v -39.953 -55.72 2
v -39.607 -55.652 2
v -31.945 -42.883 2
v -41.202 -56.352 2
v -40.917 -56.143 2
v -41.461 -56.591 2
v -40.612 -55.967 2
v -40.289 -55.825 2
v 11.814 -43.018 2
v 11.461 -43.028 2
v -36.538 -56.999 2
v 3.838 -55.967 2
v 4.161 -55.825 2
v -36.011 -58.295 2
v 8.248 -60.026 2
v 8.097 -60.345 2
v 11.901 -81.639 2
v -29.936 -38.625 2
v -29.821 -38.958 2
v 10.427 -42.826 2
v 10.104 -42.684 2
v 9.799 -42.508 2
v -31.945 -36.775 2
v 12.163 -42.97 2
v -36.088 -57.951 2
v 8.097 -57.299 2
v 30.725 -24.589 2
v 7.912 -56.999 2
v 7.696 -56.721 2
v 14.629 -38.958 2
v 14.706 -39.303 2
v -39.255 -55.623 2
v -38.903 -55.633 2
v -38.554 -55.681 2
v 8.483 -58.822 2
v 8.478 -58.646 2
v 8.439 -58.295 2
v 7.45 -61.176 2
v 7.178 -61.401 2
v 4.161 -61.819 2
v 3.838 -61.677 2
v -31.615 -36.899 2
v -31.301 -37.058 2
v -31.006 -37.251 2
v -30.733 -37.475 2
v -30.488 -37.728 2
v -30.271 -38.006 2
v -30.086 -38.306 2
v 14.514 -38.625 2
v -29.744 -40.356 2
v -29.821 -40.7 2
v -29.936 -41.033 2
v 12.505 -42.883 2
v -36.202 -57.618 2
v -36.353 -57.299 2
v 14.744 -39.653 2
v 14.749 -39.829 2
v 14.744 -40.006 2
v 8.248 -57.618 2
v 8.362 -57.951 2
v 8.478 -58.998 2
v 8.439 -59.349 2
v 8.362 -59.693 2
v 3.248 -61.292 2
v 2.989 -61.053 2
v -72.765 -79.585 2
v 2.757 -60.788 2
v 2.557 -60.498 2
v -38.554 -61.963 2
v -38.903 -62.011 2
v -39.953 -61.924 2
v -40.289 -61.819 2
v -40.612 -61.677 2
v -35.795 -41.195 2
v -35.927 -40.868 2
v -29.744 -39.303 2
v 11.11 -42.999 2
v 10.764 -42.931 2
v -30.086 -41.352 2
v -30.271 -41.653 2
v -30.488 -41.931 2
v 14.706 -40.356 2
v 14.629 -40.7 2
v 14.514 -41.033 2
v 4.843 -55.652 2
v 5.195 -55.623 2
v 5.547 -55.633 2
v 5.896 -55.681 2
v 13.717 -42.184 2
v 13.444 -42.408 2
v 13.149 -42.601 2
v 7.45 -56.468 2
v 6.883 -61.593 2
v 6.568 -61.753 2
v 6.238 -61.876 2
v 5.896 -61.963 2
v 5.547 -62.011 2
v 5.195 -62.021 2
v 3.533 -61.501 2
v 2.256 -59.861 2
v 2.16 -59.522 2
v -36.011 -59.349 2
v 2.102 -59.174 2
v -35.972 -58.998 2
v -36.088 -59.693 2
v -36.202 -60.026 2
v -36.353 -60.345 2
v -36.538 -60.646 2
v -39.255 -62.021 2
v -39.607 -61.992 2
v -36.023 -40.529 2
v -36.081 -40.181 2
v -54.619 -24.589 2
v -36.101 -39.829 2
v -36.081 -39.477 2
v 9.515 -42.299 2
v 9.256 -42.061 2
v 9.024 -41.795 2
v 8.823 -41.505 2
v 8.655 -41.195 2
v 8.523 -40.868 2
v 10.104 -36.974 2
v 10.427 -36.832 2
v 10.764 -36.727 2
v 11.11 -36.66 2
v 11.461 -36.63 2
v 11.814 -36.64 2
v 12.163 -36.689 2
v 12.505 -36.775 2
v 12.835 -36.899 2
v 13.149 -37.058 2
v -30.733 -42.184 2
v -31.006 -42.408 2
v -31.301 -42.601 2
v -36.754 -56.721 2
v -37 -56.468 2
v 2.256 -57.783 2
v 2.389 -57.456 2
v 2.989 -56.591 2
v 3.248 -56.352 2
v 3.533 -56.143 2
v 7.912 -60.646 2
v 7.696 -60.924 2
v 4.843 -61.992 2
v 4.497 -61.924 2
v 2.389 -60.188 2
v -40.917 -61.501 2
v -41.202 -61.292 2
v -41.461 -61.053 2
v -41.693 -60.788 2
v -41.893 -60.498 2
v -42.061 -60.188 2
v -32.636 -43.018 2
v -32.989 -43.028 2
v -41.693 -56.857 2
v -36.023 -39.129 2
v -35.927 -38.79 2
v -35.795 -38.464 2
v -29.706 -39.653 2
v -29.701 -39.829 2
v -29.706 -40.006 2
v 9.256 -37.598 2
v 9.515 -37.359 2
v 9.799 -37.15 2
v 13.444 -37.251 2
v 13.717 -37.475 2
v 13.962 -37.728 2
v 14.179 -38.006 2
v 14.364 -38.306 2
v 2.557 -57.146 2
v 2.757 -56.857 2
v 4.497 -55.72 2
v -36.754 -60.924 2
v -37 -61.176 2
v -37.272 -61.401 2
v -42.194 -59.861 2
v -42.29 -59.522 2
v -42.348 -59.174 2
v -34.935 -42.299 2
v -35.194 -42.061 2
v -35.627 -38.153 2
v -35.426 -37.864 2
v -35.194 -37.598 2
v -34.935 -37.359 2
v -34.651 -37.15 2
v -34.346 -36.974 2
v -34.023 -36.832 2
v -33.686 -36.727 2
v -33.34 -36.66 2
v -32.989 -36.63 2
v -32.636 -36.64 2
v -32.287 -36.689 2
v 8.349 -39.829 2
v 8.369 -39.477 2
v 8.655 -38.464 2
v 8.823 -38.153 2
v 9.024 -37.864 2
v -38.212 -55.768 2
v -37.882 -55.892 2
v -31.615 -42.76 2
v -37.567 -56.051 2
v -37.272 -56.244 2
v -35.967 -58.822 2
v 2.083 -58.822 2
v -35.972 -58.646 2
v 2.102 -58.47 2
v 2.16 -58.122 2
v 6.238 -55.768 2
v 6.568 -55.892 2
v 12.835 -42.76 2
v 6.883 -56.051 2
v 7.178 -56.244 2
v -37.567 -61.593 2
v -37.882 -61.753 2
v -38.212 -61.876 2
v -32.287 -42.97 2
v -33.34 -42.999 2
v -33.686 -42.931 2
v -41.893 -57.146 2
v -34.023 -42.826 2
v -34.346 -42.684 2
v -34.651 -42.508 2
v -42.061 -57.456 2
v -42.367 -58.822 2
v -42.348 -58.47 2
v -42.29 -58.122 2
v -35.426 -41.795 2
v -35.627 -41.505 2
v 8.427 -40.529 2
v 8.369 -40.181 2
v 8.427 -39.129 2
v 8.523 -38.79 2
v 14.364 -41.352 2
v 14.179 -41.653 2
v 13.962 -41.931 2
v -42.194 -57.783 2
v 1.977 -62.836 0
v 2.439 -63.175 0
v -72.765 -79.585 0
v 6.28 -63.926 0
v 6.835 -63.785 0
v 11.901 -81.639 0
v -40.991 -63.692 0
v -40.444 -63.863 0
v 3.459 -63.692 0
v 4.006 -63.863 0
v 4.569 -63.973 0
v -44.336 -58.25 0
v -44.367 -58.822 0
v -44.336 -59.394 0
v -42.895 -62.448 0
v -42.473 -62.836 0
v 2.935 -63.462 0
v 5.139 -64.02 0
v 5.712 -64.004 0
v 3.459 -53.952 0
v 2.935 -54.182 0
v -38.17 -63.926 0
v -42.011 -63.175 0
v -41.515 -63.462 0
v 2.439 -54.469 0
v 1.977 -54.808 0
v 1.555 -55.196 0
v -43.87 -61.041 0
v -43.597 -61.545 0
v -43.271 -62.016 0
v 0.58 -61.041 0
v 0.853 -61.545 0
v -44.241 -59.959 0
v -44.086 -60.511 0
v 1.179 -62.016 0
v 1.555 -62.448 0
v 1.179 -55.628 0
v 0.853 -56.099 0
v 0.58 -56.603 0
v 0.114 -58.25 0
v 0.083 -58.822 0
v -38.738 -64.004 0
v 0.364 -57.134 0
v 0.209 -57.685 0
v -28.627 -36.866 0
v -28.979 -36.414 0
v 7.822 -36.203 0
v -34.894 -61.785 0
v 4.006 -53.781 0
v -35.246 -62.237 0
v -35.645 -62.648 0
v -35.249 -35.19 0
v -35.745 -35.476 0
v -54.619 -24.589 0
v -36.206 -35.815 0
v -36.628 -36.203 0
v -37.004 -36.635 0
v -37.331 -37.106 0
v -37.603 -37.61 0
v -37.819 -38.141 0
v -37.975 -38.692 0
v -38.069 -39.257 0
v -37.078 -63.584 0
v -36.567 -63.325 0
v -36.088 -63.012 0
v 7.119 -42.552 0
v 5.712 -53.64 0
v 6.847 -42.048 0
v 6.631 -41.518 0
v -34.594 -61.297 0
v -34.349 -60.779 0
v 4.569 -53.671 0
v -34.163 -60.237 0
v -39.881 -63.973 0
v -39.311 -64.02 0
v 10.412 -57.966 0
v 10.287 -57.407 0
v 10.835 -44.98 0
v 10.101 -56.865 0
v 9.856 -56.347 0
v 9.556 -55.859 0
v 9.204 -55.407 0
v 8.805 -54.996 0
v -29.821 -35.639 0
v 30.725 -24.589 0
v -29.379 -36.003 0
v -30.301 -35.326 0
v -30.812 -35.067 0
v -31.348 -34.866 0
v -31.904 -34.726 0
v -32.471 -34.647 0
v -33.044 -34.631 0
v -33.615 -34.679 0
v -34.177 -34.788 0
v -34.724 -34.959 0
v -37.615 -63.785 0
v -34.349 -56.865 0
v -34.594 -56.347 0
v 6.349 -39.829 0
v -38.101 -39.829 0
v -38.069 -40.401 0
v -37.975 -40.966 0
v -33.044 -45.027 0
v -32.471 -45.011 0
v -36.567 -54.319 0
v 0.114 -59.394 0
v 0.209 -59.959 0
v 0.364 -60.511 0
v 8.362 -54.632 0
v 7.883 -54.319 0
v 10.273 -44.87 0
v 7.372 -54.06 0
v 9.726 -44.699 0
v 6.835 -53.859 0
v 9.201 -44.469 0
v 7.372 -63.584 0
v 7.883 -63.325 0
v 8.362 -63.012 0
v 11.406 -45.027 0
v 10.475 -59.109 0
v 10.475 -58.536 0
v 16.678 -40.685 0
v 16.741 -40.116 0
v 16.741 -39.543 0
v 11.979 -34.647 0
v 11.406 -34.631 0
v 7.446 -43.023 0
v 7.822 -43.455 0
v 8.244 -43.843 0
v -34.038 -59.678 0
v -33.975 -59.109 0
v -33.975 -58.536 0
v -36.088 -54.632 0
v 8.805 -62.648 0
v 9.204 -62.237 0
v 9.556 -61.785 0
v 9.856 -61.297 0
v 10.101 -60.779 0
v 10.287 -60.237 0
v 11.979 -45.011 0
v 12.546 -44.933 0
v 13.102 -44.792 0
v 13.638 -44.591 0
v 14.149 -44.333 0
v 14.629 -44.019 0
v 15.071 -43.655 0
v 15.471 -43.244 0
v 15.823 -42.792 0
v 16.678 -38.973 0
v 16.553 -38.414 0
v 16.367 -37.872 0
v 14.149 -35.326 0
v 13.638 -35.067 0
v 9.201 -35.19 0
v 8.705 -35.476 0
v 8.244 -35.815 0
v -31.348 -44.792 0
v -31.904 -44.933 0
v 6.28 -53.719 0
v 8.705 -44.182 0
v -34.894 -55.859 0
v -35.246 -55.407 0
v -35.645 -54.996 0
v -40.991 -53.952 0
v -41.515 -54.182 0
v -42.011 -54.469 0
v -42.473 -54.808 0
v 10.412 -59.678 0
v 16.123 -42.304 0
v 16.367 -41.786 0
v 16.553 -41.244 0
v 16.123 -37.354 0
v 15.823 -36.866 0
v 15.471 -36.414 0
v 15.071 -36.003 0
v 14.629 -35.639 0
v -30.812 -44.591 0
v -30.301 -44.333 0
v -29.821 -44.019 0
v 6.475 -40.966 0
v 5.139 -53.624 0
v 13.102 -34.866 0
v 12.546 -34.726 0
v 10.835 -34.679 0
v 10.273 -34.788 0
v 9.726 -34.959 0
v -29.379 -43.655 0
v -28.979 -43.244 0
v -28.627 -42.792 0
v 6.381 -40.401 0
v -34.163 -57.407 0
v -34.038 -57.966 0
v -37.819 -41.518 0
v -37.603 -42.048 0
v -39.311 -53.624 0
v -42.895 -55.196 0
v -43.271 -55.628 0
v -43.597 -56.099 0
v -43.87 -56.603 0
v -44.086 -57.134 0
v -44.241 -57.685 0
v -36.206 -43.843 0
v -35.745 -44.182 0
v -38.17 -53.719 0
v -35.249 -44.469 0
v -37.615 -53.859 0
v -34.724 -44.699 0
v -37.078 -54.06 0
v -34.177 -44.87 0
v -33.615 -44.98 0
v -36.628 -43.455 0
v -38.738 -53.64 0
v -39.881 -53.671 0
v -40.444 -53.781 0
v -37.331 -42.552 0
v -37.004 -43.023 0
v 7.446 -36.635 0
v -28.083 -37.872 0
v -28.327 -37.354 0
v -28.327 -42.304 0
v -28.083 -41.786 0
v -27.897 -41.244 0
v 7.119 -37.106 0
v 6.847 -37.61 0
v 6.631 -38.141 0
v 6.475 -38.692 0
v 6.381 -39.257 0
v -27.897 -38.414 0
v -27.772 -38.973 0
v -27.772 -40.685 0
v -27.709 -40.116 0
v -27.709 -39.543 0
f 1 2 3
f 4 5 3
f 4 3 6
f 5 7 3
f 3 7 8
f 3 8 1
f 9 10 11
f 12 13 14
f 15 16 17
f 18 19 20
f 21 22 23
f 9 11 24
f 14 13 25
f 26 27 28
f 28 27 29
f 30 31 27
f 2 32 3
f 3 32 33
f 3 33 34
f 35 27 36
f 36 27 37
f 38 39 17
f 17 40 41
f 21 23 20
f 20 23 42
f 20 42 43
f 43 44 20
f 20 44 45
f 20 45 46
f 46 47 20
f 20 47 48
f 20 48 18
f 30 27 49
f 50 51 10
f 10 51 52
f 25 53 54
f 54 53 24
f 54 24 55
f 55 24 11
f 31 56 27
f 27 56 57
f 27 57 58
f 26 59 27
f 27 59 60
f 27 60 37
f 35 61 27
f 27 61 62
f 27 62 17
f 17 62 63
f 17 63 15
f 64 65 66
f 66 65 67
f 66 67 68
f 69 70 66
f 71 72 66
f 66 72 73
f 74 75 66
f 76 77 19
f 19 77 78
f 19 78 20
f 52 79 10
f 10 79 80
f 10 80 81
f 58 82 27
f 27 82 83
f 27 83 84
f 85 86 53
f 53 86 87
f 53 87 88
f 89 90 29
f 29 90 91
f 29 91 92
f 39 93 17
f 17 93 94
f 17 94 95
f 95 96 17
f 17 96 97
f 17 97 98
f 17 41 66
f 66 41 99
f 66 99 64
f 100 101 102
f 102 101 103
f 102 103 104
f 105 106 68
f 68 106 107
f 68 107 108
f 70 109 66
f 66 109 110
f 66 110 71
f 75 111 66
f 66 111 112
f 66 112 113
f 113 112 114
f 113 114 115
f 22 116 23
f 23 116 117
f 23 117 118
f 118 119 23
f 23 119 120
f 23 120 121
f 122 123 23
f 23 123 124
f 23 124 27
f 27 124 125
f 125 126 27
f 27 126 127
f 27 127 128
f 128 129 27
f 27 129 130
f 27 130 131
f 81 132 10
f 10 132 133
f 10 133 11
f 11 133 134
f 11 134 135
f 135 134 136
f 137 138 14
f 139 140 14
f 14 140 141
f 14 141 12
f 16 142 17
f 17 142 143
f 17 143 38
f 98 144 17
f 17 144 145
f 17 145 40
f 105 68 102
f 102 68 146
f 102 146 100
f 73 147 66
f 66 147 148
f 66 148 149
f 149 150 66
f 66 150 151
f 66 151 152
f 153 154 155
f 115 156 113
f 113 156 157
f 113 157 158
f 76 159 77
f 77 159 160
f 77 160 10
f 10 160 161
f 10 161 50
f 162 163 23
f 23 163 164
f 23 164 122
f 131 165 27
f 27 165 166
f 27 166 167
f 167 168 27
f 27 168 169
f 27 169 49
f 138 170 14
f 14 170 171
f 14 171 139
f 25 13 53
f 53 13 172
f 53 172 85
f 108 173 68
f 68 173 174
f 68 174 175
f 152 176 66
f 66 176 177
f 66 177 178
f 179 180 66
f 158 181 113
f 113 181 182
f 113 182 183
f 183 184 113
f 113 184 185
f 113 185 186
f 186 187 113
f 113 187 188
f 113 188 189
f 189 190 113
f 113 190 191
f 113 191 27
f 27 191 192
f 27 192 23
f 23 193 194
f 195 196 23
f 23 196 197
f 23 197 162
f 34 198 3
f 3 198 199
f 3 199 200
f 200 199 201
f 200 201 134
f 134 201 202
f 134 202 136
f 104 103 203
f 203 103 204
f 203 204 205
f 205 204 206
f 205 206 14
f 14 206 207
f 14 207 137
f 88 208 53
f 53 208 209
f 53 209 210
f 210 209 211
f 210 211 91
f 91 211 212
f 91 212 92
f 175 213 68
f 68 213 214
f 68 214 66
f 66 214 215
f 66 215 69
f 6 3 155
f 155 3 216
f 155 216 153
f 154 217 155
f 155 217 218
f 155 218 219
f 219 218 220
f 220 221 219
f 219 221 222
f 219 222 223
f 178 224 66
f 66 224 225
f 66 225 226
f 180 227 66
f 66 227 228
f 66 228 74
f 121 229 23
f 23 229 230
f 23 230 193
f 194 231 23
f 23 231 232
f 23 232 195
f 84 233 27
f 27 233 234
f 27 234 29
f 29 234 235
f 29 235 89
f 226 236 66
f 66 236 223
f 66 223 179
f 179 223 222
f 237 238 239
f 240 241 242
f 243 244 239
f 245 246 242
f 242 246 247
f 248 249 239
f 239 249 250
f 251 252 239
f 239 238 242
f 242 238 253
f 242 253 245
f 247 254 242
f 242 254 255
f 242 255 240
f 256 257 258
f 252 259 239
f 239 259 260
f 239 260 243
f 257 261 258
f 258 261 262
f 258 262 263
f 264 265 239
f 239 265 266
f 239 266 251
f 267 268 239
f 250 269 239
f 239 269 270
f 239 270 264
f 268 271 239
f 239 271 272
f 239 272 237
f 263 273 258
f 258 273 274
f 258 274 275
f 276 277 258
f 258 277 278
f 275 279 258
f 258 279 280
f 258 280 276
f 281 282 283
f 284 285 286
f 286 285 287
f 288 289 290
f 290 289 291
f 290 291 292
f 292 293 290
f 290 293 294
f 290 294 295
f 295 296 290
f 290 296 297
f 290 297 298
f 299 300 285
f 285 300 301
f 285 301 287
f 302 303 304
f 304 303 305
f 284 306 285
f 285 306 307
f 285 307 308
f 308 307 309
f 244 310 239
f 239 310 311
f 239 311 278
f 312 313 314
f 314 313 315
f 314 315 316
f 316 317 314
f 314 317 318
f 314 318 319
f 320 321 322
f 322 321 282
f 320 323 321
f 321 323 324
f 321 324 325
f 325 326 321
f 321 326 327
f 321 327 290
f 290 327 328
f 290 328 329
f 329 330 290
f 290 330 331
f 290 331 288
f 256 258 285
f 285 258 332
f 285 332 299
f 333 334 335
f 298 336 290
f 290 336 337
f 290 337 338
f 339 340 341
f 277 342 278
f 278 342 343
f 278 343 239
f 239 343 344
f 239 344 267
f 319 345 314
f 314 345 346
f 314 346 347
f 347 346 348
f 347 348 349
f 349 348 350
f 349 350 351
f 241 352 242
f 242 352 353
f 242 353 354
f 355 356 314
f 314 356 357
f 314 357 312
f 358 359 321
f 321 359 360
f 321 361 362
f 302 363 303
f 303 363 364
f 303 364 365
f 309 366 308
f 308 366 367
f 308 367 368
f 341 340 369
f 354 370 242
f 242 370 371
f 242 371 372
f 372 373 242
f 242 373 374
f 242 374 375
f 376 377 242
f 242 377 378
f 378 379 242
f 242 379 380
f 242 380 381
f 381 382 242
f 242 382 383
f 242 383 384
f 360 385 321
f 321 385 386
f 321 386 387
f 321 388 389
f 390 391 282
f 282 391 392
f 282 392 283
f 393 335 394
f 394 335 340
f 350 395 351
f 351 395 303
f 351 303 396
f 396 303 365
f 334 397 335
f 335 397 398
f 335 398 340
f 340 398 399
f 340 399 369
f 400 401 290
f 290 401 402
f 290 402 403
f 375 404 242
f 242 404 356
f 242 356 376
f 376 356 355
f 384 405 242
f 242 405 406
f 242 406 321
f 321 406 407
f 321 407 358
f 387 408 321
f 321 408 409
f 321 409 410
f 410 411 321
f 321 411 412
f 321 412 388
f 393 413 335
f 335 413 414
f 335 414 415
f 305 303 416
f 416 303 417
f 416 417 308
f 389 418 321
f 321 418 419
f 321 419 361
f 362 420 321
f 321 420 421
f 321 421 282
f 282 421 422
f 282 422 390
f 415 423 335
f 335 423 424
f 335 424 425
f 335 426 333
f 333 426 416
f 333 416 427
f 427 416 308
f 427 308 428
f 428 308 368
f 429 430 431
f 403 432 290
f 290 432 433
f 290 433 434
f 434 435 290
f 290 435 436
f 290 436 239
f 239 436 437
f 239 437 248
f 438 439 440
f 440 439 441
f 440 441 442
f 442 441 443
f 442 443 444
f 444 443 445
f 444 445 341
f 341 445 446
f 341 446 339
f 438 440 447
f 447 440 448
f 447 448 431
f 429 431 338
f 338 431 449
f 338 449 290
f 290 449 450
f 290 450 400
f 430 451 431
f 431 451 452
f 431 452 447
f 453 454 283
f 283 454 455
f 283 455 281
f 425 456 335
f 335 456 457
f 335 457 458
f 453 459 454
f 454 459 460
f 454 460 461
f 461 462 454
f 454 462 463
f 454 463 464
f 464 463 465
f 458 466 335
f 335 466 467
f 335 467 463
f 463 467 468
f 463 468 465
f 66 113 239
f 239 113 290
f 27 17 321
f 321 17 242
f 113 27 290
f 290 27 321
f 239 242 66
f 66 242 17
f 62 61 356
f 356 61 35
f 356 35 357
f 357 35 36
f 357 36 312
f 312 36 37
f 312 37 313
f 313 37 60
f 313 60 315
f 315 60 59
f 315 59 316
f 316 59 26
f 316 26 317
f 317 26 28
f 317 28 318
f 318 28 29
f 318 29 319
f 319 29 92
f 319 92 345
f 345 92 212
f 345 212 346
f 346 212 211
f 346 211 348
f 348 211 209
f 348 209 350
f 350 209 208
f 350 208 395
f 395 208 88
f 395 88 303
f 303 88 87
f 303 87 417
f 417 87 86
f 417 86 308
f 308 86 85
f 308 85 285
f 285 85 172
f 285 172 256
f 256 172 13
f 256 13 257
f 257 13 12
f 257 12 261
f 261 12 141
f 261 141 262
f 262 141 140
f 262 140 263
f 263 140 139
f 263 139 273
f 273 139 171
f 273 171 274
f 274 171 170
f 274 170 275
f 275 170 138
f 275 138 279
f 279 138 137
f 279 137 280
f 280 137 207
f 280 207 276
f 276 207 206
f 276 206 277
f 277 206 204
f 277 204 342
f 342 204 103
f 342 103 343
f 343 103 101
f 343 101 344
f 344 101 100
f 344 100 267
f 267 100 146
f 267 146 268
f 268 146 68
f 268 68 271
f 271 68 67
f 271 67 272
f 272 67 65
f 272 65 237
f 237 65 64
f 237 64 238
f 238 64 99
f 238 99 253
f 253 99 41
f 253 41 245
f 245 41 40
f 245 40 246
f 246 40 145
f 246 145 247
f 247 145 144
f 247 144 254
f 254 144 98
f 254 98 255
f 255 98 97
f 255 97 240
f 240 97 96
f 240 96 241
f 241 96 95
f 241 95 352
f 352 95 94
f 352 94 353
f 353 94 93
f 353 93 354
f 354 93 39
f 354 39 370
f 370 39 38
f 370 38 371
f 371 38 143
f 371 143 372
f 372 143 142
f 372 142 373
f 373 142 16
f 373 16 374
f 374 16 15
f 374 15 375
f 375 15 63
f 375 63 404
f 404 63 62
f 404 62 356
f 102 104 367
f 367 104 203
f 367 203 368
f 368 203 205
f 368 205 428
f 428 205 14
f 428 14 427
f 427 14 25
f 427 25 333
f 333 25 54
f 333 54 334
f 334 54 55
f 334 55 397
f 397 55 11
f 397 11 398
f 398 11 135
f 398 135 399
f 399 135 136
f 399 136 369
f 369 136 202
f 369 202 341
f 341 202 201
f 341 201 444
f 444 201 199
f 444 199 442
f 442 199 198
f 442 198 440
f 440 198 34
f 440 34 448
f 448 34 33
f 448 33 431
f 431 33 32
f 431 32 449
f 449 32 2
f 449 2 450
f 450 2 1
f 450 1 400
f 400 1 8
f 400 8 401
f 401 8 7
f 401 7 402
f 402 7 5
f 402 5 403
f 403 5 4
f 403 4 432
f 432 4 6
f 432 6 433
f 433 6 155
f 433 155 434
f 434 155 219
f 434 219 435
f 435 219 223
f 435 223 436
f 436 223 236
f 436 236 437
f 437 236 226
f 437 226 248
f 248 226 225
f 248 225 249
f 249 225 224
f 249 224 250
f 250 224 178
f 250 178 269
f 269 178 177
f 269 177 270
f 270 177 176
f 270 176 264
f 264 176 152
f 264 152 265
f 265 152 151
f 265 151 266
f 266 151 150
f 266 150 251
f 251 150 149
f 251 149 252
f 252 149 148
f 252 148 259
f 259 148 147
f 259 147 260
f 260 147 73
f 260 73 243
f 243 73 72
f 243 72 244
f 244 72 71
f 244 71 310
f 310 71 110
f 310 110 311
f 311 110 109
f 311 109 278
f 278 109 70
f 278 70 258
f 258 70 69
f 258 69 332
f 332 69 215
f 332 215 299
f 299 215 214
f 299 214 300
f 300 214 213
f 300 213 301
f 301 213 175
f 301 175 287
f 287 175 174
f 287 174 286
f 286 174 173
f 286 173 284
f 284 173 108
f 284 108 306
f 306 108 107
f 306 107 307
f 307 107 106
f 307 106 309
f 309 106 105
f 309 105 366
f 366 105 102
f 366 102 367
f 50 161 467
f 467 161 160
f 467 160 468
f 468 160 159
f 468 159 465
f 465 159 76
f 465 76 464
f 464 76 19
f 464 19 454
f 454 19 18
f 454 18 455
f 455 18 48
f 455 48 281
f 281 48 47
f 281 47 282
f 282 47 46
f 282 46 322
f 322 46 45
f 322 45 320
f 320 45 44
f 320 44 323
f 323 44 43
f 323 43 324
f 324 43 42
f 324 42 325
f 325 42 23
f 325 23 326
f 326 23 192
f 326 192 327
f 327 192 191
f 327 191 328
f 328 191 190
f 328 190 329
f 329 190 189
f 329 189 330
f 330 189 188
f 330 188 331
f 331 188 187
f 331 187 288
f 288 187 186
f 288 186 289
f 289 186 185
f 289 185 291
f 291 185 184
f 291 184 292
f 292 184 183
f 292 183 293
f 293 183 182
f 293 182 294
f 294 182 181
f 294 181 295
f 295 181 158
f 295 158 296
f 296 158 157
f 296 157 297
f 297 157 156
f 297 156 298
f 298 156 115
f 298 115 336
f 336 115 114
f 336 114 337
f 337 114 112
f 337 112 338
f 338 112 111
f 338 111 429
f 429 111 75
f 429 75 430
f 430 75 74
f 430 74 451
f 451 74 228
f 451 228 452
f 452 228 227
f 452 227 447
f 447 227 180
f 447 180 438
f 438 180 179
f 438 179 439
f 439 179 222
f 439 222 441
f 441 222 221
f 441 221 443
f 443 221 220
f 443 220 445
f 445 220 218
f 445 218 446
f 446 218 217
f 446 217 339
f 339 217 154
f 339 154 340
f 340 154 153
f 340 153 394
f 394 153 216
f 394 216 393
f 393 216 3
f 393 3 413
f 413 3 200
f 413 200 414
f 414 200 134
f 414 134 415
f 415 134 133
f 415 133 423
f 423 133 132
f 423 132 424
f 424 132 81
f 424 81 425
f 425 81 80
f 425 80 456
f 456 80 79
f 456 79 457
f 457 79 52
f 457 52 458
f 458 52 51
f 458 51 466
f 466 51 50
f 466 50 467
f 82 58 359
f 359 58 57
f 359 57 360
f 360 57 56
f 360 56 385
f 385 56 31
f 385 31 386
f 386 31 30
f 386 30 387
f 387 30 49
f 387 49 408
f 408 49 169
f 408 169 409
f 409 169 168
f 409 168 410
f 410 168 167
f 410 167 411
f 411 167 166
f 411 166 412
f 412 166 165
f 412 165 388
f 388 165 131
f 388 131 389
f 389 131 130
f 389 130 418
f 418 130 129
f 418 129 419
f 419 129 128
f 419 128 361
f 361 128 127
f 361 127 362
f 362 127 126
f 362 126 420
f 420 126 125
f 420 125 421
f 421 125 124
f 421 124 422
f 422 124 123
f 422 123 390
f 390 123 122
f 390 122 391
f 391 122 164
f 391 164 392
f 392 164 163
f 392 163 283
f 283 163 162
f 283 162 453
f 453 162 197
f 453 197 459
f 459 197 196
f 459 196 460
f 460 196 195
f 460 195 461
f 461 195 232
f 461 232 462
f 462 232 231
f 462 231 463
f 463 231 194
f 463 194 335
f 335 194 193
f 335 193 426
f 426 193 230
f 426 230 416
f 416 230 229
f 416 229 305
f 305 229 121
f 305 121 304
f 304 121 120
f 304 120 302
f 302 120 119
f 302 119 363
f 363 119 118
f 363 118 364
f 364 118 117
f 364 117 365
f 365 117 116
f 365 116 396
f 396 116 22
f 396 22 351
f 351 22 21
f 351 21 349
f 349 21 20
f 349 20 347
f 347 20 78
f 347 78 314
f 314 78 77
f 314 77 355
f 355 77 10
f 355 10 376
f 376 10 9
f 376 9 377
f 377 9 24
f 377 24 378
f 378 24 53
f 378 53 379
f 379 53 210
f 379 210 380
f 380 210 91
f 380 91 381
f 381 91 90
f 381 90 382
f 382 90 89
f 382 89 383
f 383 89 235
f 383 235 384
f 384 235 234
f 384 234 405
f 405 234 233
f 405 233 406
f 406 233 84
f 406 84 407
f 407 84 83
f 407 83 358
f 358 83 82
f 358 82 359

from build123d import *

# Parameters (mm, degrees)
BOSS_EXTRUDE1_DEPTH                            = 2
BOSS_EXTRUDE2_DEPTH                            = 2
SKETCH4_R                                      = 2.5
CUT_EXTRUDE2_DEPTH                             = 2
CSK_FOR_M5_FLAT_HEAD_MACHINE_SCREW1_AT_2_COUNT = 2
CSK_FOR_M5_FLAT_HEAD_MACHINE_SCREW1_AT_2_PITCH = 44.45
CSK_FOR_M5_FLAT_HEAD_MACHINE_SCREW1_AT_3_COUNT = 2
CSK_FOR_M5_FLAT_HEAD_MACHINE_SCREW1_AT_3_PITCH = 54.156278026
CSK_FOR_M5_FLAT_HEAD_MACHINE_SCREW1_AT_4_COUNT = 2
CSK_FOR_M5_FLAT_HEAD_MACHINE_SCREW1_AT_4_PITCH = 20


with BuildPart() as part:
    # Sketch2 → Boss-Extrude1 (new body)
    with BuildSketch(Plane.XY):
        Polygon((-54.61917065, -24.589230235), (30.72482935, -24.589230235), (13.852659447, -75.725684813), (-71.491340553, -75.725684813), align=None)
    extrude(amount=BOSS_EXTRUDE1_DEPTH)

    # Sketch3 → Boss-Extrude2 (add)
    with BuildSketch(Plane.XY.offset(2)):
        Polygon((-72.764711867, -79.585039875), (11.90144755, -81.639450446), (13.852659447, -75.725684813), (-71.491340553, -75.725684813), align=None)
    extrude(amount=-BOSS_EXTRUDE2_DEPTH)

    # Sketch4 → Cut-Extrude2 (cut)
    with BuildSketch(Plane.XY.offset(2)):
        with Locations((-32.900665919, -39.829230235)):
            Circle(SKETCH4_R)
        with Locations((11.549334081, -39.829230235)):
            Circle(SKETCH4_R)
        with Locations((5.282742972, -58.822119322)):
            Circle(SKETCH4_R)
        with Locations((-39.167257028, -58.822119322)):
            Circle(SKETCH4_R)
    extrude(amount=-CUT_EXTRUDE2_DEPTH, mode=Mode.SUBTRACT)

    # Sketch5 → CSK for M5 Flat Head Machine Screw1 (revolve, cut)
    with BuildSketch(Plane(origin=(11.549334081, -39.829230235, 0), x_dir=(0, 1, 0), z_dir=(1, 0, 0))):
        Polygon((0, 0), (0, 2), (2.75, 2), (2.75, 2.45), (5.2, 0), align=None)
    csk_for_m5_flat_head_machine_screw1 = revolve(axis=Axis((11.549334081, -39.829230235, -6.35), (0, 0, 1)), mode=Mode.SUBTRACT)

    # CSK for M5 Flat Head Machine Screw1 at 2: CSK for M5 Flat Head Machine Screw1 ×2
    with Locations(*[(-i * CSK_FOR_M5_FLAT_HEAD_MACHINE_SCREW1_AT_2_PITCH, 0, 0) for i in range(1, CSK_FOR_M5_FLAT_HEAD_MACHINE_SCREW1_AT_2_COUNT)]):
        add(csk_for_m5_flat_head_machine_screw1, mode=Mode.SUBTRACT)

    # CSK for M5 Flat Head Machine Screw1 at 3: CSK for M5 Flat Head Machine Screw1 ×2
    with Locations(*[Vector(-0.9364859063085671, -0.35070521422616713, 0) * (i * CSK_FOR_M5_FLAT_HEAD_MACHINE_SCREW1_AT_3_PITCH) for i in range(1, CSK_FOR_M5_FLAT_HEAD_MACHINE_SCREW1_AT_3_COUNT)]):
        add(csk_for_m5_flat_head_machine_screw1, mode=Mode.SUBTRACT)

    # CSK for M5 Flat Head Machine Screw1 at 4: CSK for M5 Flat Head Machine Screw1 ×2
    with Locations(*[Vector(-0.31332955547970937, -0.9496444543421964, 0) * (i * CSK_FOR_M5_FLAT_HEAD_MACHINE_SCREW1_AT_4_PITCH) for i in range(1, CSK_FOR_M5_FLAT_HEAD_MACHINE_SCREW1_AT_4_COUNT)]):
        add(csk_for_m5_flat_head_machine_screw1, mode=Mode.SUBTRACT)


solid = part.part
